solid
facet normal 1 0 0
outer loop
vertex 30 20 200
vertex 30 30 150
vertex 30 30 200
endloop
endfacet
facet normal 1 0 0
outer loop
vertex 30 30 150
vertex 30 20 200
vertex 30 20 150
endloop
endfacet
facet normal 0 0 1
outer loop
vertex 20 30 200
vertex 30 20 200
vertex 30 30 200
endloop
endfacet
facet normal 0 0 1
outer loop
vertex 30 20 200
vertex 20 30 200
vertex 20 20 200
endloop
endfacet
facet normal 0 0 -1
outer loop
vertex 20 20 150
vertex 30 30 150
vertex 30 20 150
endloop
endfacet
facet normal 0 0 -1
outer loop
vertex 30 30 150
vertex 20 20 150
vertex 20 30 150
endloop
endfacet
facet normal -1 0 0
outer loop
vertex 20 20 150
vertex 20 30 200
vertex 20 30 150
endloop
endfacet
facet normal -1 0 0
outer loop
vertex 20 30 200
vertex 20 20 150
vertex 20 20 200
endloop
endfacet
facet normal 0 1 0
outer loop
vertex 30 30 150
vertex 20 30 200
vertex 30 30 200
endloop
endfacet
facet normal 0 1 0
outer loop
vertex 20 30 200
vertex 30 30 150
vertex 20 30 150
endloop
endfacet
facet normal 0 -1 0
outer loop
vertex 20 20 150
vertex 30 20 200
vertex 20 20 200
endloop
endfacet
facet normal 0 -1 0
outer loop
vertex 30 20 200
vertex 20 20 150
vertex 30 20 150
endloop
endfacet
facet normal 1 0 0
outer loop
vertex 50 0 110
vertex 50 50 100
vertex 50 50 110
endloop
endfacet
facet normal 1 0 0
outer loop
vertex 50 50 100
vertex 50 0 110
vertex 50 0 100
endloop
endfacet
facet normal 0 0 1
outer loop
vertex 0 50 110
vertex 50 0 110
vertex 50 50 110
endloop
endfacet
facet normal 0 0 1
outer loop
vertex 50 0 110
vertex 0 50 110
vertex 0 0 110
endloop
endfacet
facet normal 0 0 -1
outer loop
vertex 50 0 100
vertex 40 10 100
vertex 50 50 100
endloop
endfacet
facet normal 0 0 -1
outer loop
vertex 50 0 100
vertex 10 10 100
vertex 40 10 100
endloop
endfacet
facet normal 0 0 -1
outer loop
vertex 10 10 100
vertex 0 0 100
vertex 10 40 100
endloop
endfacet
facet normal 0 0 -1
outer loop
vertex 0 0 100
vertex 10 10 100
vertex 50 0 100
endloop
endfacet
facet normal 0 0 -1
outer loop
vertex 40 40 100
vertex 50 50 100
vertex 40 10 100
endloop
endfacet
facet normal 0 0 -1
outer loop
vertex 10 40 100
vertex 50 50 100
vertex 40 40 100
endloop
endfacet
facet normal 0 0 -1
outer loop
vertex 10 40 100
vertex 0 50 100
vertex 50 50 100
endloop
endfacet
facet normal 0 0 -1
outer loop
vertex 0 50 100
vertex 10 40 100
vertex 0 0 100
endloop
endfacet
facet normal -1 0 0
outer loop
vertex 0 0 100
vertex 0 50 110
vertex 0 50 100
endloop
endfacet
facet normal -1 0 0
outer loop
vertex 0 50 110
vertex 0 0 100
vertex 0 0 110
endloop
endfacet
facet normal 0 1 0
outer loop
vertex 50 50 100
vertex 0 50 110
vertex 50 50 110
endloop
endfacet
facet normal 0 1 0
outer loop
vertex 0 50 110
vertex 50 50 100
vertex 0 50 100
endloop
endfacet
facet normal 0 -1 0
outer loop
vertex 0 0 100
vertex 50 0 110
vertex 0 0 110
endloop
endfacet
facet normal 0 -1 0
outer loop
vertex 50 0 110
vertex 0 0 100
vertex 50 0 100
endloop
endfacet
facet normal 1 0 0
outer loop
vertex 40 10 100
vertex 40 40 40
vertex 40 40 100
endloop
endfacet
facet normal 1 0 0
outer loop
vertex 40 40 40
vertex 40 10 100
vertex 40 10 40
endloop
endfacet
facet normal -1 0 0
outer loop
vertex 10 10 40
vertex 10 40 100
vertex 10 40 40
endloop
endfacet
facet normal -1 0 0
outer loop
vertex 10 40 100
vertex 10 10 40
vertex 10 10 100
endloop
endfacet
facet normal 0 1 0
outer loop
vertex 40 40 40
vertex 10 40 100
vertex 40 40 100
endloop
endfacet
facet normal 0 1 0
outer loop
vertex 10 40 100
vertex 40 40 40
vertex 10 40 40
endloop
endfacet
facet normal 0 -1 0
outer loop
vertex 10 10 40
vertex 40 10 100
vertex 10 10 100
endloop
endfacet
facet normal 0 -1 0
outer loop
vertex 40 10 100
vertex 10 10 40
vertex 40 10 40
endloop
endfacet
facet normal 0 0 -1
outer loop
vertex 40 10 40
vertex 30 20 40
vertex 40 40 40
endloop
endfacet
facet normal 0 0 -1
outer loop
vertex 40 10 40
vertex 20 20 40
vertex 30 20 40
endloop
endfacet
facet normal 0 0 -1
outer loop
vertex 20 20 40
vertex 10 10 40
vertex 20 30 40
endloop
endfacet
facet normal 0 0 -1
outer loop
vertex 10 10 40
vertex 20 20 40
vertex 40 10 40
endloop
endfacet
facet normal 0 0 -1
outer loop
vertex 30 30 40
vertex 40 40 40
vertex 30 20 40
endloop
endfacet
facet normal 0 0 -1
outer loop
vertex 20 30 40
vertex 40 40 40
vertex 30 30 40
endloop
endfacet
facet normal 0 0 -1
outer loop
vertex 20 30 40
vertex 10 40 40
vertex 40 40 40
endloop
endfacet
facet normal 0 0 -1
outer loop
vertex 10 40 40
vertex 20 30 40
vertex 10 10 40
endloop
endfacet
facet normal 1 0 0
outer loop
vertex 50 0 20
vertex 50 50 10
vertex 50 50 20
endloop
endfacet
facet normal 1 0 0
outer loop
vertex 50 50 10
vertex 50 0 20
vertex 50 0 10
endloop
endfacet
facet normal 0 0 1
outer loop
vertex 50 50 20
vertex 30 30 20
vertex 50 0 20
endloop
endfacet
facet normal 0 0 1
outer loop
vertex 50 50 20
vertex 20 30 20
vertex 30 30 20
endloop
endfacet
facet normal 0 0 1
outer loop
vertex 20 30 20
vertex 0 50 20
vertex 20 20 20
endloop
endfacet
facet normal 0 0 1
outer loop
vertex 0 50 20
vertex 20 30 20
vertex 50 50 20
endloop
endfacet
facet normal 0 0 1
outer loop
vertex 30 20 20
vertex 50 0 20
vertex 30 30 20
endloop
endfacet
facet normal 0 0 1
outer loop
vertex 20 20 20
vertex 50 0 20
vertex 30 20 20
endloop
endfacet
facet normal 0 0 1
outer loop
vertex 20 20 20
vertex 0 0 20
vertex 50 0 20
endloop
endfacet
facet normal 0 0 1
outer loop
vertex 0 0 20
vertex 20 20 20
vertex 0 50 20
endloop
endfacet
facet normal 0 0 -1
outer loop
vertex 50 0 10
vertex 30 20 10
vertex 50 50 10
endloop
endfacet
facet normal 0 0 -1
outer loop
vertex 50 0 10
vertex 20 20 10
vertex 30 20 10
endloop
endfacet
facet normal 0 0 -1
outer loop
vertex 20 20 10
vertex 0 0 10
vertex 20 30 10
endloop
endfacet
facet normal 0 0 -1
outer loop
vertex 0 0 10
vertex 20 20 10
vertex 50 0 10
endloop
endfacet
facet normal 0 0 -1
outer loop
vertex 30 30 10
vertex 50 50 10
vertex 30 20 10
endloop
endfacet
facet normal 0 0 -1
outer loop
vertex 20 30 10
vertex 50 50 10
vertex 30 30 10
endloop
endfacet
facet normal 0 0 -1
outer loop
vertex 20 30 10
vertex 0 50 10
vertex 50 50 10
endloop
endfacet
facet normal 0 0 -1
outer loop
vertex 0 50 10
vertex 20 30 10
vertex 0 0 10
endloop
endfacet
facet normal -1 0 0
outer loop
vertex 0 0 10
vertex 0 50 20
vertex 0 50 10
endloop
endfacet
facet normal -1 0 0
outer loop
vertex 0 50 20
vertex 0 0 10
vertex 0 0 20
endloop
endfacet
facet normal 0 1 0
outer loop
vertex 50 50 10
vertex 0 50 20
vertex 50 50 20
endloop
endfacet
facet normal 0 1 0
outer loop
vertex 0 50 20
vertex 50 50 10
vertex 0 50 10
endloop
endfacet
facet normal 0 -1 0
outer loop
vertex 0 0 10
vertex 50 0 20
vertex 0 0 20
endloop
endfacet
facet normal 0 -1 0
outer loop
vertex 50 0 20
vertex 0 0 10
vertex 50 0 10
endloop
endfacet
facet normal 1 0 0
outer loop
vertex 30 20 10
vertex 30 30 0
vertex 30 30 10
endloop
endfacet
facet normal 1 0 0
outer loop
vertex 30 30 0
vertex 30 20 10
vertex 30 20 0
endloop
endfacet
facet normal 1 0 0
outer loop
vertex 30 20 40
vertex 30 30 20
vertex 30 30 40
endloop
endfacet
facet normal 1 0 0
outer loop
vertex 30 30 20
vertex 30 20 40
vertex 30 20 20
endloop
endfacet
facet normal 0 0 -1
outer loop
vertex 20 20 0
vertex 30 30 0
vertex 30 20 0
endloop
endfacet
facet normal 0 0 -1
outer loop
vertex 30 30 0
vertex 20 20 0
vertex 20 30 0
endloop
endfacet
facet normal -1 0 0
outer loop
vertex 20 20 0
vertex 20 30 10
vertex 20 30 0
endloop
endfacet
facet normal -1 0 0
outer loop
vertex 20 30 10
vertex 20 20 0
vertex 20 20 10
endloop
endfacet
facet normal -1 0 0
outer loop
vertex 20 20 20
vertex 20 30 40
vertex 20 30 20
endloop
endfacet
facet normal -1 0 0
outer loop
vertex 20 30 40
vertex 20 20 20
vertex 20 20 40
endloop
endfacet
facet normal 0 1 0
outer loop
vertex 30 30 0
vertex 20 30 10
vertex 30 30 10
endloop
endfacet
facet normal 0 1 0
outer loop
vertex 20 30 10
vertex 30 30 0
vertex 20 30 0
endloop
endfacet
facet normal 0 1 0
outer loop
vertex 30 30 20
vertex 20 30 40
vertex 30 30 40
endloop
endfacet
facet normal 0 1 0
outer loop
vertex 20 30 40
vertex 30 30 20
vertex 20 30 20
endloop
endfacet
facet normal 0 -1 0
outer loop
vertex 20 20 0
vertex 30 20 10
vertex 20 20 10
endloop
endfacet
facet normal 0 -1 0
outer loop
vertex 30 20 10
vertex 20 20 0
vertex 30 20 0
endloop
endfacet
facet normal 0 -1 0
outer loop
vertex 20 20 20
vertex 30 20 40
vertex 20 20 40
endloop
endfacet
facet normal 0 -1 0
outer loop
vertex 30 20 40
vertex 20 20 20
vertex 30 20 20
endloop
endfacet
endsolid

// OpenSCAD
// Define dimensions for each component
module tall_narrow_block() {
    cube([10, 10, 50]); // Width: 10, Depth: 10, Height: 50
}

module short_wide_block() {
    cube([50, 50, 10]); // Width: 50, Depth: 50, Height: 10
}

module medium_block() {
    cube([30, 30, 30]); // Width: 30, Depth: 30, Height: 30
}

// Assemble the model based on the positional relationships
module assembly() {
    // Layer 1: tall_narrow_block_1
    translate([20, 20, 150]) // Adjusted position to align vertically and closer
        tall_narrow_block();

    // Layer 2: short_wide_block_1
    translate([0, 0, 100]) // Corrected alignment to remove rotation
        short_wide_block();

    // Layer 3: medium_block_1
    translate([10, 10, 70]) // Adjusted height to match symmetry
        medium_block();

    // Layer 4: medium_block_2
    translate([10, 10, 40]) // Adjusted height to match symmetry
        medium_block();

    // Layer 5: short_wide_block_2
    translate([0, 0, 10]) // Corrected alignment to remove rotation
        short_wide_block();

    // Layer 6: tall_narrow_block_2
    translate([20, 20, 0]) // Adjusted position to align vertically and closer
        tall_narrow_block();
}

// Render the assembly
assembly();
